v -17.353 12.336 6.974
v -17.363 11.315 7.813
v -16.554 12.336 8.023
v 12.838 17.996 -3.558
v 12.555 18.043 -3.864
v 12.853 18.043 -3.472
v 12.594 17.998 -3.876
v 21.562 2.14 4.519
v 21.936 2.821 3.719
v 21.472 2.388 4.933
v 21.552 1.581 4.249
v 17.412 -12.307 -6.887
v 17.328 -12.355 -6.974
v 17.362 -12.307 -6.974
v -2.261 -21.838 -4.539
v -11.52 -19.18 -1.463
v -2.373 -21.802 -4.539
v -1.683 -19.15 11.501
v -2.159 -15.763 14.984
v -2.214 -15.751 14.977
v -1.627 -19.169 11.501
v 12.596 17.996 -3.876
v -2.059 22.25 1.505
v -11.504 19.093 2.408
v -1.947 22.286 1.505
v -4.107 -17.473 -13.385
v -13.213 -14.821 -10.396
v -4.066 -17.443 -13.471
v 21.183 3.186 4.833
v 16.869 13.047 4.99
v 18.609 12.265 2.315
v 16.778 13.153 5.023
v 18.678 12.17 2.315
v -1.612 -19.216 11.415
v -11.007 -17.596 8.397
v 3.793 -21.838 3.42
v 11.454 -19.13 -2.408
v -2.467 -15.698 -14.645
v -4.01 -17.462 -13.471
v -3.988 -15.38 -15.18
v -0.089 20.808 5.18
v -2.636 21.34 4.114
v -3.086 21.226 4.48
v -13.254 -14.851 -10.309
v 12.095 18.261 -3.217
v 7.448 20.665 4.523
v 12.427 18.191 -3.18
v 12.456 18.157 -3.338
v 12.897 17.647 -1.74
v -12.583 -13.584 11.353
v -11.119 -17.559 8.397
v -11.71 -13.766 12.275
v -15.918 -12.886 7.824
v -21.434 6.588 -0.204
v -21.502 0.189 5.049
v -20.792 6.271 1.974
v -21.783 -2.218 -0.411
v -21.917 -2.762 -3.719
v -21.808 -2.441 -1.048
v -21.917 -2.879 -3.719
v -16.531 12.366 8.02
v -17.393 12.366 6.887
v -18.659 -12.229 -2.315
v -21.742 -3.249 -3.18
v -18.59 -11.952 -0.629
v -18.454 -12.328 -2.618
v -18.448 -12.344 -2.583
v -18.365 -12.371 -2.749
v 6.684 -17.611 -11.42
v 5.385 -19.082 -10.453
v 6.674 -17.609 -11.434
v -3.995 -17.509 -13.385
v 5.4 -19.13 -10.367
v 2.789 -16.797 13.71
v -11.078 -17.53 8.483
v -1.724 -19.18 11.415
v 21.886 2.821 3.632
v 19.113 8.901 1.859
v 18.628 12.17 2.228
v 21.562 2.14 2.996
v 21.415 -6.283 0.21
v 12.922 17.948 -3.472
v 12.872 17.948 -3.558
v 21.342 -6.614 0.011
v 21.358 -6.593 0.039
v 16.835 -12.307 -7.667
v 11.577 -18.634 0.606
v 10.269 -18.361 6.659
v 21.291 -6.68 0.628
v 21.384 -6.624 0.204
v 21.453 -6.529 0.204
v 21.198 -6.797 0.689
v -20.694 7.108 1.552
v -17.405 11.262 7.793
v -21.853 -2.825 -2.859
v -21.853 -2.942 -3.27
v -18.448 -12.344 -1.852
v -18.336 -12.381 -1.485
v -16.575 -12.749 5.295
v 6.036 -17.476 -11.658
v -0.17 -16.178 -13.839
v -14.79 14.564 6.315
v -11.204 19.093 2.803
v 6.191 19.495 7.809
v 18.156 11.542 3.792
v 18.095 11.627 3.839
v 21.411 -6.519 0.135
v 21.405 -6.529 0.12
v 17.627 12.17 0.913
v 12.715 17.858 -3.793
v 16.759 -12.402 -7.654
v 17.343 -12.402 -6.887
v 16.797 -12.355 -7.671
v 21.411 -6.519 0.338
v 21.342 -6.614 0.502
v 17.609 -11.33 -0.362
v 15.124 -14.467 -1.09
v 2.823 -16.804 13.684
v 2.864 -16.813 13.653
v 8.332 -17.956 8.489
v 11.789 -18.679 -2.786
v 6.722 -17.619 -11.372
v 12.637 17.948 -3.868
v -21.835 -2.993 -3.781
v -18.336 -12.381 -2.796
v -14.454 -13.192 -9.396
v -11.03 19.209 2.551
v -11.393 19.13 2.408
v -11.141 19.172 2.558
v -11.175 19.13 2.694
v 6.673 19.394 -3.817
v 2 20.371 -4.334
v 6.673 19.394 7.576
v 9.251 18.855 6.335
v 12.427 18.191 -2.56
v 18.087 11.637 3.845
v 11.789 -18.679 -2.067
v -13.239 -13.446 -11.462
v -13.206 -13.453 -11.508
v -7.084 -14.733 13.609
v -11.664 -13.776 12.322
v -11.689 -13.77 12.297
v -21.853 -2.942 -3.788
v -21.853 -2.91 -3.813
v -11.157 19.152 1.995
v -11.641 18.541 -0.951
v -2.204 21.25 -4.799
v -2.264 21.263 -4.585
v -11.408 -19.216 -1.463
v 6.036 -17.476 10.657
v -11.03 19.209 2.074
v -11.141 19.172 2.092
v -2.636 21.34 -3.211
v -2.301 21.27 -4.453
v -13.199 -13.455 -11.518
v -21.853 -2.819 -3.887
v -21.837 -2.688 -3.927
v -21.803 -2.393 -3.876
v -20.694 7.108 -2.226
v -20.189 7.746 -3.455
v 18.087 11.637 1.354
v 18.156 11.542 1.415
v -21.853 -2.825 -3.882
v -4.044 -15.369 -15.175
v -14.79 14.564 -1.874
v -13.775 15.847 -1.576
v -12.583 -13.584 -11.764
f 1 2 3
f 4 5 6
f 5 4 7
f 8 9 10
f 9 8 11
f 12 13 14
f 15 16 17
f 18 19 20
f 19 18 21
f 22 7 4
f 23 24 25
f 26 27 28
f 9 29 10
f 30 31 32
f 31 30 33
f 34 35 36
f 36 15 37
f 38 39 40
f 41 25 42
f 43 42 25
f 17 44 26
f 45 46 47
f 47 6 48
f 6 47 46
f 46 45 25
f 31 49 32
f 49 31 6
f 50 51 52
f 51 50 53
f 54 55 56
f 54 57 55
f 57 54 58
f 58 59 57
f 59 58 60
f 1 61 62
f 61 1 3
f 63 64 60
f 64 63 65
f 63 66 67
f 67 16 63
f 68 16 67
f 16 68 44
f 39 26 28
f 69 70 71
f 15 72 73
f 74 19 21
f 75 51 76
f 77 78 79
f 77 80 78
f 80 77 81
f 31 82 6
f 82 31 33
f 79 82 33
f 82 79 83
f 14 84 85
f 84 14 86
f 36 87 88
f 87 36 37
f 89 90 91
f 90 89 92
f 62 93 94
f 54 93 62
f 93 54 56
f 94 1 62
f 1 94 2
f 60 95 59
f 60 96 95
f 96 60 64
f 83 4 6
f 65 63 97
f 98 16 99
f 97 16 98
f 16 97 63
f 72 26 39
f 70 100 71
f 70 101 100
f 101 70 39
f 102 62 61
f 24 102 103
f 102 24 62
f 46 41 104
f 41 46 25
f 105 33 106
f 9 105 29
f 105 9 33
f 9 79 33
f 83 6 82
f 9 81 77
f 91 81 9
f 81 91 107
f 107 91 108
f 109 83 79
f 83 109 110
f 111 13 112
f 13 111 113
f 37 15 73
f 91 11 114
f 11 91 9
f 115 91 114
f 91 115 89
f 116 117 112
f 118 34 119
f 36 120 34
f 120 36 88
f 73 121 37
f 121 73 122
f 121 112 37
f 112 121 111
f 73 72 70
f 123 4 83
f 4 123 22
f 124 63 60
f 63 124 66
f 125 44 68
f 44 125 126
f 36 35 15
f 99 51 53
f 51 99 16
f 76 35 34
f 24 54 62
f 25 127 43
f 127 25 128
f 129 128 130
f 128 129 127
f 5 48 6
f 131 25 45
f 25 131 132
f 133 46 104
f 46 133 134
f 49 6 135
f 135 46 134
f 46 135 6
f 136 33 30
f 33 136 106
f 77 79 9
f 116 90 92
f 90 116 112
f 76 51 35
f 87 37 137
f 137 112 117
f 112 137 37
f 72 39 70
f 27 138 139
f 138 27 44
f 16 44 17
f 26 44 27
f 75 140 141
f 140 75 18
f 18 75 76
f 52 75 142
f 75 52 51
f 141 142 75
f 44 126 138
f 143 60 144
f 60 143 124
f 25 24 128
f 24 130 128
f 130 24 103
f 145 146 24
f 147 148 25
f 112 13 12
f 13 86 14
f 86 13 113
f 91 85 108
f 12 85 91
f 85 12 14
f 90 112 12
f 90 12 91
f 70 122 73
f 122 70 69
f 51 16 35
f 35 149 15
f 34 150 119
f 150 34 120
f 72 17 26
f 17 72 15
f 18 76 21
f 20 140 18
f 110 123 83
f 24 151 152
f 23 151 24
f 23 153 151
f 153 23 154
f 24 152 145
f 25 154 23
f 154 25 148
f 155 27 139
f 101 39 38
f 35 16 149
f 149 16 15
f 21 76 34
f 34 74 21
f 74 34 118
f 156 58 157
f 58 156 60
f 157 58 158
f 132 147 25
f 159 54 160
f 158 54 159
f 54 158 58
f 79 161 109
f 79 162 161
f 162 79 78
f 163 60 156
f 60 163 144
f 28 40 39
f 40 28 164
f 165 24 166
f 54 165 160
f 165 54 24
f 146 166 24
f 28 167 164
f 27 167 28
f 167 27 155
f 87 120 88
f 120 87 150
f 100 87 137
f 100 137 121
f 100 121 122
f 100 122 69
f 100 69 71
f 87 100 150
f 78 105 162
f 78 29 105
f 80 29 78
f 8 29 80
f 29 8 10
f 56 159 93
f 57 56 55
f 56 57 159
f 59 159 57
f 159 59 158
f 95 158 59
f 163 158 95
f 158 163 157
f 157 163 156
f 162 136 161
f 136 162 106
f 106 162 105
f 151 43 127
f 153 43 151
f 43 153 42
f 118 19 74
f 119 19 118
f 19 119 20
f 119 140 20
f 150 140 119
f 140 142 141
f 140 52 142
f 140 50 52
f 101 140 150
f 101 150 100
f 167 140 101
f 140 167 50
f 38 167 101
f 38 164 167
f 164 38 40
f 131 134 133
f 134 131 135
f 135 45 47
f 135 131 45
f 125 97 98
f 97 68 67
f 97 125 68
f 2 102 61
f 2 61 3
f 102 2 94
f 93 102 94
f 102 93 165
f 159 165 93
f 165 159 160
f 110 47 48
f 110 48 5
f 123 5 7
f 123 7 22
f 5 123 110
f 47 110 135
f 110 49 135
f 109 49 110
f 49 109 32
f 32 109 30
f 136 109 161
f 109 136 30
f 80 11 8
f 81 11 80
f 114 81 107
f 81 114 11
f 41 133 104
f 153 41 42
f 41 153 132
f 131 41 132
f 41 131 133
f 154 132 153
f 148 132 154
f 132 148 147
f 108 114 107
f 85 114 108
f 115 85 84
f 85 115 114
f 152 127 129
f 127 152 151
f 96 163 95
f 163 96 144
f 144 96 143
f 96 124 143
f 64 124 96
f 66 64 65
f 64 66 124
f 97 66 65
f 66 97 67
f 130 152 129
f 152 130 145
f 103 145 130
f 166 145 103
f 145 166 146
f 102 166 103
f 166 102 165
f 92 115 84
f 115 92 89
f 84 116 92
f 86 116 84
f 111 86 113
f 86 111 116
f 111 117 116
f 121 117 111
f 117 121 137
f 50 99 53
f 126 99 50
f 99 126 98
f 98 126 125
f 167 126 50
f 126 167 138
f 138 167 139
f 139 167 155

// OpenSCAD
// Auto-generated OpenSCAD file

    inner_points = 10*[[-1.836699607587161, -1.2285699091430797, -0.5000000000000988], [2.146184519456955, 0.21396464522266723, -0.4999999999998816], [-2.1772358223098434, -0.2883385086557597, -0.5000000000001185], [1.8056483047342733, 1.1541960457099871, -0.4999999999999012], [-1.8366996075872162, -1.2285699091430788, 0.4999999999999012], [2.1461845194569, 0.21396464522266823, 0.5000000000001185], [-2.1772358223098984, -0.2883385086557587, 0.4999999999998816], [1.8056483047342182, 1.154196045709988, 0.5000000000000988], [-0.3153732443086741, -0.677570739321549, -2.118033988749911], [0.6248581561786458, -0.33703452459886674, -2.1180339887498594], [-0.6559094590313566, 0.2626606611657711, -2.1180339887499304], [0.2843219414559636, 0.6031968758884533, -2.118033988749879], [-0.3153732443089066, -0.6775707393215448, 2.118033988749879], [0.6248581561784134, -0.3370345245988626, 2.1180339887499304], [-0.6559094590315889, 0.26266066116577524, 2.1180339887498594], [0.2843219414557311, 0.6031968758884575, 2.118033988749911], [1.1758573260000895, -1.8583608878772635, -0.49999999999993283], [-2.061336407064101, 0.7049224467561074, -0.500000000000113], [-0.2666772283656575, 2.124523239166853, -0.5000000000000159], [1.1758573260000345, -1.8583608878772626, 0.5000000000000672], [-2.061336407064156, 0.7049224467561084, 0.499999999999887], [-0.26667722836571245, 2.124523239166854, 0.49999999999998407], [2.131136622972155, -0.6519300139659565, 1.184490416110162e-13], [-1.1060571100920356, 1.911353320667414, -6.17776737251443e-14], [1.2396012384279405, 1.809627749799762, 6.709282429360799e-14], [-1.2463045333092315, -0.4829546239886549, -1.8090169943750145], [1.2152532304564871, 0.40858076055555986, -1.8090169943748804], [-1.24630453330943, -0.48295462398865135, 1.8090169943748804], [1.2152532304562886, 0.4085807605555634, 1.8090169943750145], [0.6005101482070487, -1.7380815138430665, -1.309016994374912], [-0.6315614510598482, 1.6637076504099721, -1.309016994374983], [0.6005101482069051, -1.7380815138430639, 1.309016994374983], [-0.6315614510599918, 1.6637076504099748, 1.309016994374912], [-1.2613524297940315, -1.3488492831772787, -1.3090169943750145], [1.7813002967627651, -0.24685094353421377, -1.3090169943748486], [-1.8123515996155641, 0.17247708010111973, -1.3090169943750463], [1.2303011269412325, 1.2744754197441843, -1.3090169943748804], [-1.2613524297941754, -1.348849283177276, 1.3090169943748804], [1.7813002967626212, -0.24685094353421122, 1.3090169943750463], [-1.812351599615708, 0.17247708010112228, 1.3090169943748486], [1.2303011269410886, 1.274475419744187, 1.3090169943750145], [-0.3304211407934745, -1.543465398510173, -1.6180339887499107], [1.190905222484924, -0.9924662286886403, -1.6180339887498278], [-1.2219565253376892, 0.9180923652555457, -1.618033988749962], [0.2993698379407091, 1.469091535077078, -1.6180339887498791], [-0.3304211407936521, -1.5434653985101696, 1.6180339887498791], [1.1909052224847463, -0.9924662286886372, 1.618033988749962], [-1.2219565253378668, 0.9180923652555488, 1.6180339887498278], [0.2993698379405315, 1.4690915350770812, 1.6180339887499107], [1.7662524002779645, -1.1127456027228375, -0.8090169943748485], [-1.4709413327862264, 1.450537731910533, -0.8090169943750288], [0.6642540606348998, 1.929907123833959, -0.809016994374912], [1.7662524002778757, -1.112745602722836, 0.8090169943750464], [-1.4709413327863152, 1.4505377319105348, 0.8090169943748661], [0.664254060634811, 1.9299071238339605, 0.8090169943749829]];

    outer_points = 10*[[1.12576446959325, -1.2306993530072232, -1.4846216484373451], [-1.1423570636659763, 1.9034473733016377, 0.24078291813028324], [0.5369108131957494, -1.9034473733016377, -1.0366691146380147], [-1.731210720063477, 1.2306993530072232, 0.6887354519296138], [1.731210720063477, -1.2306993530072232, -0.6887354519296138], [-0.5369108131957494, 1.9034473733016377, 1.0366691146380147], [1.1423570636659763, -1.9034473733016377, -0.24078291813028324], [-1.12576446959325, 1.2306993530072232, 1.4846216484373451], [-0.7202134771182586, -0.03356182928645268, -2.113346665479179], [-1.2556443401984863, 0.7063098495808671, -1.7060338990806576], [-1.3090671335157593, -0.7063098495808671, -1.6653941316798484], [-1.8444979965959871, 0.03356182928645268, -1.2580813652813272], [1.8444979965959871, -0.03356182928645268, 1.2580813652813272], [1.3090671335157593, 0.7063098495808671, 1.6653941316798484], [1.2556443401984863, -0.7063098495808671, 1.7060338990806576], [0.7202134771182586, 0.03356182928645268, 2.113346665479179], [0.6767735018743313, 1.7948390122814335, -1.1430654069882231], [-0.22922787002565134, -2.174290821629481, -0.4538523813764673], [-1.8176506154247858, -1.0549673334141139, 0.7544919768790133], [1.2822197523445582, 1.7948390122814335, -0.3471792104804918], [0.37621838044457556, -2.174290821629481, 0.34203381513126413], [-1.2122043649545589, -1.0549673334141139, 1.5503781733867446], [-0.1977840872008227, 2.2190790322251956, 0.1504582370241563], [-1.1037854591008052, -1.7500508016857188, 0.8396712626359121], [-1.739422974049132, 0.4578018492302146, 1.32321319585744], [-0.394374457196368, -0.9685046012940453, -1.9729509883124625], [-1.796150655366095, 0.9685046012940453, -0.9065923218293875], [1.796150655366095, -0.9685046012940453, 0.9065923218293875], [0.394374457196368, 0.9685046012940453, 1.9729509883124625], [0.27270684057678685, 1.2170126016446976, -1.8521823031333664], [-1.8577857026690232, -1.2170126016446976, -0.23147481050075225], [1.8577857026690232, 1.2170126016446976, 0.23147481050075225], [-0.27270684057678685, -1.2170126016446976, 1.8521823031333664], [0.5501985192687854, -0.6528729423704873, -2.0632756694185894], [-1.1824921509102135, 1.741402105071054, -0.7451838692494821], [-0.4025867111820227, -1.741402105071054, -1.3384732443846366], [-2.1352773813610217, 0.6528729423704873, -0.020381444215529232], [2.1352773813610217, -0.6528729423704873, 0.020381444215529232], [0.4025867111820227, 1.741402105071054, 1.3384732443846366], [1.1824921509102135, -1.741402105071054, 0.7451838692494821], [-0.5501985192687854, 0.6528729423704873, 2.0632756694185894], [0.22435949934689503, 0.28206982963710514, -2.203671346585306], [-0.6419858357426045, 1.4792073533578758, -1.5446254465007523], [-1.317279387501414, -1.4792073533578758, -1.0309163877520224], [-2.1836247225909133, -0.28206982963710514, -0.3718704876674688], [2.1836247225909133, 0.28206982963710514, 0.3718704876674688], [1.317279387501414, 1.4792073533578758, 1.0309163877520224], [0.6419858357426045, -1.4792073533578758, 1.5446254465007523], [-0.22435949934689503, -0.28206982963710514, 2.203671346585306], [-0.2379191744450599, 2.057033763994612, -0.8355085503556091], [-1.1439205463450426, -1.9120960699163028, -0.1462955247438532], [-2.1434896353466764, -0.1200245614065214, 0.6140962997122967], [0.7417134371769494, 2.057033763994612, 0.45226236677077825], [-0.16428793472303332, -1.9120960699163028, 1.1414753923825343], [-1.1638570237246673, -0.1200245614065214, 1.901867216838684]];

    // Convex hull for inner set (I)
    module inner_hull() {
        hull() {
            for (p = inner_points) {
                translate(p) sphere(r=0.1);
            }
        }
    }

    // Convex hull for outer set (O) minus inner hull (O \ I)
    module outer_minus_inner() {
        difference() {
            hull() {
                for (p = outer_points) {
                    translate(p) sphere(r=0.1);
                }
            }
            inner_hull(); // Subtract inner hull
        }
    }

    // Convex hull for outer set (O) minus all translated inner hulls
    module outer_minus_AllTranslationInner() {
        difference() {
            hull() {
                for (p = outer_points) {
                    translate(p) sphere(r=0.1);
                }
            }
            hull() {
                translate([0,0,50]) inner_hull();
                translate([0,0,-50]) inner_hull();
            }; // Subtract translated inner hulls
        }
    }

    // Difference between outer_minus_inner and outer_minus_AllTranslationInner
    module outer_minus_inner_diff() {
        difference() {
            // Outer minus inner
            difference() {
                hull() {
                    for (p = outer_points) {
                        translate(p) sphere(r=0.1);
                    }
                }
                inner_hull();
            }

            // Subtract Outer minus AllTranslationInner
            difference() {
                hull() {
                    for (p = outer_points) {
                        translate(p) sphere(r=0.1);
                    }
                }
                hull() {
                    translate([0,0,50]) inner_hull();
                    translate([0,0,-50]) inner_hull();
                };
            }
        }
    }

    // Rendering all with colors applied
    color([0, 1, 0, 1]) outer_minus_AllTranslationInner(); // Opaque green
    
